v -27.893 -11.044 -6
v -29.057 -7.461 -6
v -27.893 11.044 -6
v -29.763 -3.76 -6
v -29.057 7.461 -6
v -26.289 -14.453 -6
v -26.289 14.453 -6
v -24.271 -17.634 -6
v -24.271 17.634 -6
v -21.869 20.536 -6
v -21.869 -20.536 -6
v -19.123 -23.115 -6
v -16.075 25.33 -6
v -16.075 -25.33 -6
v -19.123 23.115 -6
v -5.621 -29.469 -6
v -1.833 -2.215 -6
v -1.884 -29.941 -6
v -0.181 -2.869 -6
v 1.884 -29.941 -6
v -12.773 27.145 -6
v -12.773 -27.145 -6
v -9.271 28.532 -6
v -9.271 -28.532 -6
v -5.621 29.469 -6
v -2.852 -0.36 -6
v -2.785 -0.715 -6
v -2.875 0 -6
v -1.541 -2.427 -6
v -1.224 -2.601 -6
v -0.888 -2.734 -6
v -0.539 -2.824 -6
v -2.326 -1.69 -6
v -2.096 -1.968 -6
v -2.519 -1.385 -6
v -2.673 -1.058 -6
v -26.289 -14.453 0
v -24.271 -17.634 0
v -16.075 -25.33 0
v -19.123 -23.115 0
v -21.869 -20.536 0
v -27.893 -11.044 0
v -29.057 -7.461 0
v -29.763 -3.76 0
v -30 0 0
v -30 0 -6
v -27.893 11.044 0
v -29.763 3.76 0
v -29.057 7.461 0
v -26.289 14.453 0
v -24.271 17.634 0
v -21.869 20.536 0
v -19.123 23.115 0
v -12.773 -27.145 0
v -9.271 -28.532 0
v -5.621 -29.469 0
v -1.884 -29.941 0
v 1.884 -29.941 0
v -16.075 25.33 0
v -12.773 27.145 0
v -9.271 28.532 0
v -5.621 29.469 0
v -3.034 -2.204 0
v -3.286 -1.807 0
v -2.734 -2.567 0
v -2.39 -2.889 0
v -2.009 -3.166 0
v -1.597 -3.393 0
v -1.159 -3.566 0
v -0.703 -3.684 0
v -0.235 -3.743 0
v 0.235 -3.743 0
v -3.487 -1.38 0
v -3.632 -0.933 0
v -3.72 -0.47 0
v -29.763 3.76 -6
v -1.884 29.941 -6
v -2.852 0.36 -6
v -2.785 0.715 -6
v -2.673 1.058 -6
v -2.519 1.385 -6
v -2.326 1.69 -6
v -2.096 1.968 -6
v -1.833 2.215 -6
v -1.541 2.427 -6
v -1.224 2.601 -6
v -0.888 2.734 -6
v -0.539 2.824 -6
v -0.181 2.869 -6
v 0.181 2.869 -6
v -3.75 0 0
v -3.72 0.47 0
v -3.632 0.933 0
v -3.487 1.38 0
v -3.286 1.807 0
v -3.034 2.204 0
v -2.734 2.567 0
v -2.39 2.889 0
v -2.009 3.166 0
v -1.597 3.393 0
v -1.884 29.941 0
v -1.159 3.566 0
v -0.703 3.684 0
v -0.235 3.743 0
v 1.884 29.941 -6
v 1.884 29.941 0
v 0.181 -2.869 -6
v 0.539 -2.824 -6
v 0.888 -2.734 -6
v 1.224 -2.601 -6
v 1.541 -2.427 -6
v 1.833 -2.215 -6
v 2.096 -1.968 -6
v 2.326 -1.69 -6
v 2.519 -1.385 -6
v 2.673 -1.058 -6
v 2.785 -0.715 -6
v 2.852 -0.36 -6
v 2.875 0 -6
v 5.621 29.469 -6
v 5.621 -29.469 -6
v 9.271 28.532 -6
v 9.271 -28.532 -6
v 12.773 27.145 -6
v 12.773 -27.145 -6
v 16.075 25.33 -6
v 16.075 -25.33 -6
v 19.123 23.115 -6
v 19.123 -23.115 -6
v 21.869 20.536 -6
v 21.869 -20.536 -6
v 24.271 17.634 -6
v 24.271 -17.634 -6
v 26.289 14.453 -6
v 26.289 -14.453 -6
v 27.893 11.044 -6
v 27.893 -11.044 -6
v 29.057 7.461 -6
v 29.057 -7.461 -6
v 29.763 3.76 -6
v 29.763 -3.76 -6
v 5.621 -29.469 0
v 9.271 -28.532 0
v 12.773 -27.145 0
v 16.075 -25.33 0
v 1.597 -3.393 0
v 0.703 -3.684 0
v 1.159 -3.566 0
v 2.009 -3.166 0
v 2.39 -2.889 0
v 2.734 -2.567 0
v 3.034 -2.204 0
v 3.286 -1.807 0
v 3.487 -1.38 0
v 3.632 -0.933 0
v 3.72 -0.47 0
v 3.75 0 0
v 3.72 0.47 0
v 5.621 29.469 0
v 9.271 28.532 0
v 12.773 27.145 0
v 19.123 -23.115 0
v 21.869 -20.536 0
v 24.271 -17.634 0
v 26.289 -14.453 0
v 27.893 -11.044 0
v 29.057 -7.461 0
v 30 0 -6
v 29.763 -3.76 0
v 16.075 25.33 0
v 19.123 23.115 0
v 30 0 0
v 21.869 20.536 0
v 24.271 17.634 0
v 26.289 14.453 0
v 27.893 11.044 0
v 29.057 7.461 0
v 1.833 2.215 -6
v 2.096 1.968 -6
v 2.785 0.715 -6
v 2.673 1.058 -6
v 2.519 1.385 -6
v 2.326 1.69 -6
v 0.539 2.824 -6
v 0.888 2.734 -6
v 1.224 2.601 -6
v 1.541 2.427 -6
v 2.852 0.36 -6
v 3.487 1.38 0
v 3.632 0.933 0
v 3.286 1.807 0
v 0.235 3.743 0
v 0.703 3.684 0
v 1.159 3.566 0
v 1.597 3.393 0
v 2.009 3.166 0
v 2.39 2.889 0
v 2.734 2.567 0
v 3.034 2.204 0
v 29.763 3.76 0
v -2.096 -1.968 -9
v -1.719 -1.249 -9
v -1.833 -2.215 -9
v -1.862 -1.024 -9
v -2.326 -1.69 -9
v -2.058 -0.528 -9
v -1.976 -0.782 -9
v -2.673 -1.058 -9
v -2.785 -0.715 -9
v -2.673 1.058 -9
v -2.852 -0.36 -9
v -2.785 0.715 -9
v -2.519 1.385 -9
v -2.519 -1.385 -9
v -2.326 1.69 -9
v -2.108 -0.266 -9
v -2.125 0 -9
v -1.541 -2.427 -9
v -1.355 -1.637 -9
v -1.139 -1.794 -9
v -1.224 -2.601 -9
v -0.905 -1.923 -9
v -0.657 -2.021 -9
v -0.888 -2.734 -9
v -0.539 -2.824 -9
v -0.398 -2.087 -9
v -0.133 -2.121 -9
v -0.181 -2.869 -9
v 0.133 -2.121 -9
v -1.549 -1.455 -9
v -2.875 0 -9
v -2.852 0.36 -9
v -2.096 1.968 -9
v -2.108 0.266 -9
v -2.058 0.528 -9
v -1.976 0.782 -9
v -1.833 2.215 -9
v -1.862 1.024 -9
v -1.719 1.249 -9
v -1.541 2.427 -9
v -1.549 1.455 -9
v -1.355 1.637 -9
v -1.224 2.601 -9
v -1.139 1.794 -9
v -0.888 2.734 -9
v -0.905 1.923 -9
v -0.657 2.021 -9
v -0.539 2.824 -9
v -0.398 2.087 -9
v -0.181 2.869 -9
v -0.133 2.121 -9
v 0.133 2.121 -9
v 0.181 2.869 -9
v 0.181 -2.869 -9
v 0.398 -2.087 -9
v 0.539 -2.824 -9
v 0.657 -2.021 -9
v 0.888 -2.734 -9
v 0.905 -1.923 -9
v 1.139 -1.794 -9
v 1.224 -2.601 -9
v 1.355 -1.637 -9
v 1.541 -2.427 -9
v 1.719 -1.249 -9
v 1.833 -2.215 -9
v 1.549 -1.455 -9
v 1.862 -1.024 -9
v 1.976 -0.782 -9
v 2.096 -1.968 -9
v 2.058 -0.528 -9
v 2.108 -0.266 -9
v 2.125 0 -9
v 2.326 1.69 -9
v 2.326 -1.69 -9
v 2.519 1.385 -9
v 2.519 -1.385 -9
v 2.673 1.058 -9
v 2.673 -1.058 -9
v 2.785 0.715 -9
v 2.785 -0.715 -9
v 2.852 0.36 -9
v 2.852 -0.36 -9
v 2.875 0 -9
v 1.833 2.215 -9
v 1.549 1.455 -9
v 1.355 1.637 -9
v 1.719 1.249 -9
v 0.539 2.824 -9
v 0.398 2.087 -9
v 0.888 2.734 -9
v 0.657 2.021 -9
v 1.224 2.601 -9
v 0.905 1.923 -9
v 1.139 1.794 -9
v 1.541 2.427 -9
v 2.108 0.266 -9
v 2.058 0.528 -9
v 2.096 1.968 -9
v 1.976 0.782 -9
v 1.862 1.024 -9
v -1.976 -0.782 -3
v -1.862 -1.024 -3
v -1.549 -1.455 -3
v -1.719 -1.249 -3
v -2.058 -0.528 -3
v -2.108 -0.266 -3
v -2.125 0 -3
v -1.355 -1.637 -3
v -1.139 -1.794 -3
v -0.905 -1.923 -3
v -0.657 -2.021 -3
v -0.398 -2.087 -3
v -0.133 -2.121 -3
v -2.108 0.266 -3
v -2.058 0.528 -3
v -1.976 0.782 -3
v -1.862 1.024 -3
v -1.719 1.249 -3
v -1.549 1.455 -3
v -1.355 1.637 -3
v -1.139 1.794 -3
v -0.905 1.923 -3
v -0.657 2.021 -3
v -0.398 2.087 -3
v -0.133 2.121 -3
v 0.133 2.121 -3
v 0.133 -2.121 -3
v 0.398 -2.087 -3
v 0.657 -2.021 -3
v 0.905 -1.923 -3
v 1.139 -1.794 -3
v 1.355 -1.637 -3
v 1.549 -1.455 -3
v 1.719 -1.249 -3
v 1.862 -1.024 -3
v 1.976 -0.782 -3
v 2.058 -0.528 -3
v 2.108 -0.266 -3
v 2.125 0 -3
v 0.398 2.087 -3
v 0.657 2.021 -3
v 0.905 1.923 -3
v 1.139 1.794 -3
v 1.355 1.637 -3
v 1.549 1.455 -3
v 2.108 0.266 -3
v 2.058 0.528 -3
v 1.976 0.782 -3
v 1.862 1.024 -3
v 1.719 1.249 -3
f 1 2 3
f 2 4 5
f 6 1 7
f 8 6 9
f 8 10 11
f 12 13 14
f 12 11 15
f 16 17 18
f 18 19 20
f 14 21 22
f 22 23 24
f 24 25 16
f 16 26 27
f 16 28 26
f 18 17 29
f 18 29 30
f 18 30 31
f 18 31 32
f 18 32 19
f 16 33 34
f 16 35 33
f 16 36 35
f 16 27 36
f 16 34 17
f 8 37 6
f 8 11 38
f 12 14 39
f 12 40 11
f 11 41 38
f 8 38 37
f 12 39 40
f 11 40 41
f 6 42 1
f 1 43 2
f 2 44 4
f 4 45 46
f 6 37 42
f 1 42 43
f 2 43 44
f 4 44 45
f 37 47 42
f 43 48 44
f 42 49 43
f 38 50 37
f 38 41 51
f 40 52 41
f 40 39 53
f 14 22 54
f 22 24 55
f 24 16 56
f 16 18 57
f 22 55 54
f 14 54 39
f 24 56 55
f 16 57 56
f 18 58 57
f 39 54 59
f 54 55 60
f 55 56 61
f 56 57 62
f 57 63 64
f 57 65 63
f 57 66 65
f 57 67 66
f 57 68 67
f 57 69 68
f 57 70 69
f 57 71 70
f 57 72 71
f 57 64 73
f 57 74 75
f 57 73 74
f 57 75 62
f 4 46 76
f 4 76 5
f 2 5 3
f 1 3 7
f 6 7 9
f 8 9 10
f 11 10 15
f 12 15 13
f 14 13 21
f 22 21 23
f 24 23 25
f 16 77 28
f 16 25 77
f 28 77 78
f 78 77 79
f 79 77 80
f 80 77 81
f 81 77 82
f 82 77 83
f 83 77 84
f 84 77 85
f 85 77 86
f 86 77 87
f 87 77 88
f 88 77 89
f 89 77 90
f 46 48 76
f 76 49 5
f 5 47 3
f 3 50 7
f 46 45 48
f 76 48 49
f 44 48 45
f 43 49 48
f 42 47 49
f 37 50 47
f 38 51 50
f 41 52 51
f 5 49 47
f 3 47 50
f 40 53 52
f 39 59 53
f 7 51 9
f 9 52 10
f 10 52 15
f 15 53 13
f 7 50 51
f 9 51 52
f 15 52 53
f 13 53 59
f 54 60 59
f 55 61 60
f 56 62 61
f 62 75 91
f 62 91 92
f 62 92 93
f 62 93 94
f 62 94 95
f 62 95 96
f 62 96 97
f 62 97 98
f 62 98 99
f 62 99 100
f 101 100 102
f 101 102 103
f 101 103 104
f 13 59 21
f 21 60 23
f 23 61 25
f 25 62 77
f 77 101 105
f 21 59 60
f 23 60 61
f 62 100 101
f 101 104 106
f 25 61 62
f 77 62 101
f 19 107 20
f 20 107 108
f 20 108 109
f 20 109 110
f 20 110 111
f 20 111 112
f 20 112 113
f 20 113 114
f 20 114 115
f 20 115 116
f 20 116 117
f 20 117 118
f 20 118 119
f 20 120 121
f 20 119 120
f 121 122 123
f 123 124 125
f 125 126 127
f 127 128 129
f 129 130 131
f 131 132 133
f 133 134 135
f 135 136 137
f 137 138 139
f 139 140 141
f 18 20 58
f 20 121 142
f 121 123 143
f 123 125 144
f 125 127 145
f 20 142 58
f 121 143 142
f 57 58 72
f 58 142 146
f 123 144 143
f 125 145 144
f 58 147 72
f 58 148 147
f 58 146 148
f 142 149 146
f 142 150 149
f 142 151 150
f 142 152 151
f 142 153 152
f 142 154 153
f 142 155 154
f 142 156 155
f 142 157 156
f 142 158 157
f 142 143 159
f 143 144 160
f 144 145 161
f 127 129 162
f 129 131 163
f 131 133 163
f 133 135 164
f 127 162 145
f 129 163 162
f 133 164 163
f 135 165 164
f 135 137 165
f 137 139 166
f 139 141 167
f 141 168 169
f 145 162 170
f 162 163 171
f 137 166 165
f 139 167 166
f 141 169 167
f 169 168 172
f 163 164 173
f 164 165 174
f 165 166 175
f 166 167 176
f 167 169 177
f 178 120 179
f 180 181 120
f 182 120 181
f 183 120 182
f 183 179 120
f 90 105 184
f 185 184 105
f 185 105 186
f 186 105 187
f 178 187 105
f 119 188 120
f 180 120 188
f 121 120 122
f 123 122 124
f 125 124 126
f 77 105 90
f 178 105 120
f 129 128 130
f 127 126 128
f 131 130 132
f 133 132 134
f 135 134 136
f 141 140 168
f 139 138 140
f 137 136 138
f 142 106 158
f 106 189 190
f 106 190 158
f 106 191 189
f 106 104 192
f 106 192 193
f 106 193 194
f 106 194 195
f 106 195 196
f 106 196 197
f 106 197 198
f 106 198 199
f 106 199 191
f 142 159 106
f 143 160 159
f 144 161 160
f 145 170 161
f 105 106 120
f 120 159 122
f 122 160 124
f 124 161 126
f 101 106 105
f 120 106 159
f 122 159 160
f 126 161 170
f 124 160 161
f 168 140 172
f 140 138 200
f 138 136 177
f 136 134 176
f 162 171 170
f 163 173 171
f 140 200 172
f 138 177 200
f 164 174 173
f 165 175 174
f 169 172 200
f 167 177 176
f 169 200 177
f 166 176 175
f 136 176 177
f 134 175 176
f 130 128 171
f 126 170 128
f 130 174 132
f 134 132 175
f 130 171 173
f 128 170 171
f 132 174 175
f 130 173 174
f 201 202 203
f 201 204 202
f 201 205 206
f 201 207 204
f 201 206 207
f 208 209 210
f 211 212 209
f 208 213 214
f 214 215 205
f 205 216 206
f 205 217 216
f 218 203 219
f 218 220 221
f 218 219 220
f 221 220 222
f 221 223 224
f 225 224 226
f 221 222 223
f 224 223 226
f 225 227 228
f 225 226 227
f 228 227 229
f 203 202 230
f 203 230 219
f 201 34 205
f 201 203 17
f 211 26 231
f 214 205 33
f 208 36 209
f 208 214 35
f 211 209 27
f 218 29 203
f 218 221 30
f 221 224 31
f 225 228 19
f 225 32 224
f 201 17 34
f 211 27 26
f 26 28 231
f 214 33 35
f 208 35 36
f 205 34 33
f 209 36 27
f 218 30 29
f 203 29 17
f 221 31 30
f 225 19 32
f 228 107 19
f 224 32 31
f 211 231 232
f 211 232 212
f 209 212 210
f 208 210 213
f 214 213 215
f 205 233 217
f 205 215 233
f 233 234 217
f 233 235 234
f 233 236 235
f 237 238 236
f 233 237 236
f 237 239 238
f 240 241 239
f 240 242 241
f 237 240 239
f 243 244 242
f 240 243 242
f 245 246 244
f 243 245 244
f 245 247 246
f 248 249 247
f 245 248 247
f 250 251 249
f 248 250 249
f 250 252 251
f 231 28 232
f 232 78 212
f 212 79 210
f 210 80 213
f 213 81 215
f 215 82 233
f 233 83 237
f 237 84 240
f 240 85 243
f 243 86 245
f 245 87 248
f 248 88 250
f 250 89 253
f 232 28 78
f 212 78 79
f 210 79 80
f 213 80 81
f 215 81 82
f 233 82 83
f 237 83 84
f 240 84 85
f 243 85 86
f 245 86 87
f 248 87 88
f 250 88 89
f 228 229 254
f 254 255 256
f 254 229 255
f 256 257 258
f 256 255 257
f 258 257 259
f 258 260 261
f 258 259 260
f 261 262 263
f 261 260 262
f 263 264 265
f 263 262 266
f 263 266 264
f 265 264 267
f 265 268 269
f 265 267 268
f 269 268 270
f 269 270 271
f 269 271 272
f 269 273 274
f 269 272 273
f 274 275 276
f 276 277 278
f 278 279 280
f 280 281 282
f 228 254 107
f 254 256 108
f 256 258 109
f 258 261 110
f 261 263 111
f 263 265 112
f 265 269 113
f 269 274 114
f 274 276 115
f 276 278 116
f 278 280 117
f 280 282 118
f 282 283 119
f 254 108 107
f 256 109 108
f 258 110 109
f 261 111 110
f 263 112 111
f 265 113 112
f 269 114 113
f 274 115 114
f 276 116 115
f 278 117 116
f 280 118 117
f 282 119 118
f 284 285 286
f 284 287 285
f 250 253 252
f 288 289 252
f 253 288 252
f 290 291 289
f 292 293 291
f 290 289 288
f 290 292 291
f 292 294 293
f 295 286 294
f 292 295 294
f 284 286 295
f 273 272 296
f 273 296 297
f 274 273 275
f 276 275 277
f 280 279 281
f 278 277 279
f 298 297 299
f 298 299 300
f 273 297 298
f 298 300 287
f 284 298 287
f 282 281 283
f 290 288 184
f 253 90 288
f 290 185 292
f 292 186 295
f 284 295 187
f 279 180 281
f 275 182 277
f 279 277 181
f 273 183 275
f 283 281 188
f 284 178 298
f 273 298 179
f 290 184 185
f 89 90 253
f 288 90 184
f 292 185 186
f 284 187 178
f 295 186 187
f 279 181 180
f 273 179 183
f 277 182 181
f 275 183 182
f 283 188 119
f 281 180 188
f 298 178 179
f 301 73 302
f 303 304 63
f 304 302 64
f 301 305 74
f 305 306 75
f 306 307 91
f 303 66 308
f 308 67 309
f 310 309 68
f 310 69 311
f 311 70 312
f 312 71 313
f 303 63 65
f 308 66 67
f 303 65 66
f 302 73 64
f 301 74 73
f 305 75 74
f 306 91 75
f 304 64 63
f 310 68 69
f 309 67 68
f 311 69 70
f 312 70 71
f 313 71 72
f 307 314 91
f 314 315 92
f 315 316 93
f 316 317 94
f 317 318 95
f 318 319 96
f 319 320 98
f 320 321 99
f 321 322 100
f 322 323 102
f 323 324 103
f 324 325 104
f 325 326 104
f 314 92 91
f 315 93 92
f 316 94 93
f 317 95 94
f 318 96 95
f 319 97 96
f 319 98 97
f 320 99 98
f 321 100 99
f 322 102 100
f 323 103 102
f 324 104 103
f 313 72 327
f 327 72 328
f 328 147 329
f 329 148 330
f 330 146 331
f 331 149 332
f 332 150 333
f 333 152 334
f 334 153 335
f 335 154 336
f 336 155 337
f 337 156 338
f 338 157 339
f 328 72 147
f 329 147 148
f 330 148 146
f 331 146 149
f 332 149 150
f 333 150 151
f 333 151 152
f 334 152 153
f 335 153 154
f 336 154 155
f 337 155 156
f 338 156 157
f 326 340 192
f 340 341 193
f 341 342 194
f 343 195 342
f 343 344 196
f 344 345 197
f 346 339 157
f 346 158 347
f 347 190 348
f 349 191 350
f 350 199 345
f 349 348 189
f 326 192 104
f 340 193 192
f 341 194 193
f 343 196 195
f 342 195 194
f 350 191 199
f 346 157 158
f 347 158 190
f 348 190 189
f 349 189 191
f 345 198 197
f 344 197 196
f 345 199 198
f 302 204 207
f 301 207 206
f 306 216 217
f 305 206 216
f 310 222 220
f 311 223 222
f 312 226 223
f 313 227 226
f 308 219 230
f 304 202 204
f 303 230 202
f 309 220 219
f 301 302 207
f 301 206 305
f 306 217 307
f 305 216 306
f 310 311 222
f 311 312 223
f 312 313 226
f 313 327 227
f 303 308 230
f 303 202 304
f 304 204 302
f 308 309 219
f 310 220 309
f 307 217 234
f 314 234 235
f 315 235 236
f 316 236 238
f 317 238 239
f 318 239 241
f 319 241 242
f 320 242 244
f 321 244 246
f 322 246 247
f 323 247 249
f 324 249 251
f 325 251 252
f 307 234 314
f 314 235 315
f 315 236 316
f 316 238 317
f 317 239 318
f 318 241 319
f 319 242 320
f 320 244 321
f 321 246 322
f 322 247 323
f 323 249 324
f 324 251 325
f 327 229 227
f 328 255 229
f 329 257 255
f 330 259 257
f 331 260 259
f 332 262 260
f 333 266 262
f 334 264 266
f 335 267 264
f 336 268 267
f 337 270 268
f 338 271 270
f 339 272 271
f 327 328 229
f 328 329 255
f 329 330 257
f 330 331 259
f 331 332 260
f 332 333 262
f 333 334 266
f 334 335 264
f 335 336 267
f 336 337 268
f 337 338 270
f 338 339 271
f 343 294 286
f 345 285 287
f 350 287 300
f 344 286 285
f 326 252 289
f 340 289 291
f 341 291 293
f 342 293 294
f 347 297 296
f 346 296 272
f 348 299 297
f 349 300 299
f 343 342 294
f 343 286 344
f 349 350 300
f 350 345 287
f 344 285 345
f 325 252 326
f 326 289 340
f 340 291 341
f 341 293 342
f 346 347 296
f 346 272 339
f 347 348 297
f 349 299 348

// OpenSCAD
$fn = 50;

difference() {
	union() {
		translate(v = [0, 0, -6.0]) {
			cylinder(h = 6, r = 30.0);
		}
		#translate(v = [0, 0, -9.0]) {
			cylinder(h = 9, r = 2.875);
		}
	}
	union() {
		translate(v = [0, 0, 0]) {
			rotate(a = [0, 0, 0]) {
				difference() {
					union() {
						translate(v = [0, 0, -9.0]) {
							cylinder(h = 9, r = 2.0);
						}
						translate(v = [0, 0, -3]) {
							cylinder(h = 3, r1 = 2.125, r2 = 3.75);
						}
						translate(v = [0, 0, -9.0]) {
							cylinder(h = 9, r = 2.125);
						}
						translate(v = [0, 0, -9.0]) {
							cylinder(h = 9, r = 2.0);
						}
					}
					union();
				}
			}
		}
	}
}
